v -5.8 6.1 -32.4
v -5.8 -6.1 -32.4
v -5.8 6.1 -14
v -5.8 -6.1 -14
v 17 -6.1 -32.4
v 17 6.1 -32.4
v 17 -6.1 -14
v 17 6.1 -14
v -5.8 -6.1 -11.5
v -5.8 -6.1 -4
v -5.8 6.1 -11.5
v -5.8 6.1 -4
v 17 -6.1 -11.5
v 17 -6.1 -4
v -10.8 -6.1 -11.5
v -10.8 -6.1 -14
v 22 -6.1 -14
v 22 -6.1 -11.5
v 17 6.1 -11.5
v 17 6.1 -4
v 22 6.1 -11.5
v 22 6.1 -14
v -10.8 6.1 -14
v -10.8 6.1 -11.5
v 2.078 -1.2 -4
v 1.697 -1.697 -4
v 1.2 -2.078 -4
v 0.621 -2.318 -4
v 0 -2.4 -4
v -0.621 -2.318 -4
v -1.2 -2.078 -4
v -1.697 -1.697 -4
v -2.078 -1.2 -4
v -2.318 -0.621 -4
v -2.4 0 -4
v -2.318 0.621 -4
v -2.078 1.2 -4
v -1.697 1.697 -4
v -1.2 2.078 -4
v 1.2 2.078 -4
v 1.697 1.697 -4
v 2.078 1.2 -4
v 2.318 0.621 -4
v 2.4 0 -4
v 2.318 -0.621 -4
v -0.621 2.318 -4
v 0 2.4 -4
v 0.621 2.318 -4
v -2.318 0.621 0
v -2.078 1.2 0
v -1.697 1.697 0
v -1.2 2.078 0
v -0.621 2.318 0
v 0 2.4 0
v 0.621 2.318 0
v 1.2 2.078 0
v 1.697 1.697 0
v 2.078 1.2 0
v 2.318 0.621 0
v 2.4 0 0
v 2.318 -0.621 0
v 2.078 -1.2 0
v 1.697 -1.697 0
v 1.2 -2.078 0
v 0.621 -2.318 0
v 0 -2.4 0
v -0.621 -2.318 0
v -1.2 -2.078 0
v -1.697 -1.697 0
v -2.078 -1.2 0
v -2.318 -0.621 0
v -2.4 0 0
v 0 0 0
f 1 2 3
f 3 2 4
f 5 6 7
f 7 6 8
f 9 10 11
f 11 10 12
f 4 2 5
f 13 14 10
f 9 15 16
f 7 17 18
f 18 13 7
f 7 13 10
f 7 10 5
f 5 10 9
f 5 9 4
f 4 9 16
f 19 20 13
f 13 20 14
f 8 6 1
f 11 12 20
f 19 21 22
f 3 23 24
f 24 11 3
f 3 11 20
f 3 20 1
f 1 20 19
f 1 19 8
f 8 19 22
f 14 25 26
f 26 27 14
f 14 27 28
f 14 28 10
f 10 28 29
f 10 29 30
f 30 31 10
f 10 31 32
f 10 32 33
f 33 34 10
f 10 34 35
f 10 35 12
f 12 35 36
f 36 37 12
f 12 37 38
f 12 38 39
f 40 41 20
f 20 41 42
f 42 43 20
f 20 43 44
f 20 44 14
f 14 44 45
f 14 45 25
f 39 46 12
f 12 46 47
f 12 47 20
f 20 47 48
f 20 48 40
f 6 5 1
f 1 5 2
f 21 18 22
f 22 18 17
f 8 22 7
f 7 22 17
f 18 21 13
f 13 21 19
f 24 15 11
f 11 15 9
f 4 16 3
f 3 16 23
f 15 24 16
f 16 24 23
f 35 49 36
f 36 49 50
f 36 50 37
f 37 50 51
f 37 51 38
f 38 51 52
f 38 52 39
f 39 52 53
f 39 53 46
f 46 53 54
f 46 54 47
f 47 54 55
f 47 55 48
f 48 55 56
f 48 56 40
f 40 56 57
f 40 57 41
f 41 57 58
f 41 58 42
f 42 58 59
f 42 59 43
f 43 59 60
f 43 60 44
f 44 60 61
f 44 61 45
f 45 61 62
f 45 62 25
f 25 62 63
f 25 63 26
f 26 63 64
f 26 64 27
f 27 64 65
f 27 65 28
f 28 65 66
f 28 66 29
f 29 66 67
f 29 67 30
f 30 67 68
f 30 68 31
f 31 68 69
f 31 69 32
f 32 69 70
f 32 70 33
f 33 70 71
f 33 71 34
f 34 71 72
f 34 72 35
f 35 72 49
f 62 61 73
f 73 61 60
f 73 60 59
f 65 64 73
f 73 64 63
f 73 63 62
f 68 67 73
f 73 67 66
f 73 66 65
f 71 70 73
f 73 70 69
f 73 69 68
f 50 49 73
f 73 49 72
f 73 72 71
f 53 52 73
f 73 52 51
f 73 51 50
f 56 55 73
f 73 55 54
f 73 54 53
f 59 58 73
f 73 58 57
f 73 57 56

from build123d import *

# Parameters (mm, degrees)
S_BOX1_W     = 22.8
S_BOX1_H     = 12.2
BOSS_1_DEPTH = 28.4
S_BOX2_W     = 32.8
S_BOX2_H     = 12.2
BOSS_2_DEPTH = 2.5
S_CYL3_R     = 2.4
BOSS_3_DEPTH = 4.5


with BuildPart() as part:
    # S_box1 → Boss_1 (new body)
    with BuildSketch(Plane.XY.offset(-32.4)):
        with Locations((5.6, 0)):
            Rectangle(S_BOX1_W, S_BOX1_H)
    extrude(amount=BOSS_1_DEPTH)

    # S_box2 → Boss_2 (add)
    with BuildSketch(Plane.XY.offset(-14)):
        with Locations((5.6, 0)):
            Rectangle(S_BOX2_W, S_BOX2_H)
    extrude(amount=BOSS_2_DEPTH)

    # S_cyl3 → Boss_3 (add)
    with BuildSketch(Plane.XY.offset(-4.5)):
        Circle(S_CYL3_R)
    extrude(amount=BOSS_3_DEPTH)


solid = part.part
